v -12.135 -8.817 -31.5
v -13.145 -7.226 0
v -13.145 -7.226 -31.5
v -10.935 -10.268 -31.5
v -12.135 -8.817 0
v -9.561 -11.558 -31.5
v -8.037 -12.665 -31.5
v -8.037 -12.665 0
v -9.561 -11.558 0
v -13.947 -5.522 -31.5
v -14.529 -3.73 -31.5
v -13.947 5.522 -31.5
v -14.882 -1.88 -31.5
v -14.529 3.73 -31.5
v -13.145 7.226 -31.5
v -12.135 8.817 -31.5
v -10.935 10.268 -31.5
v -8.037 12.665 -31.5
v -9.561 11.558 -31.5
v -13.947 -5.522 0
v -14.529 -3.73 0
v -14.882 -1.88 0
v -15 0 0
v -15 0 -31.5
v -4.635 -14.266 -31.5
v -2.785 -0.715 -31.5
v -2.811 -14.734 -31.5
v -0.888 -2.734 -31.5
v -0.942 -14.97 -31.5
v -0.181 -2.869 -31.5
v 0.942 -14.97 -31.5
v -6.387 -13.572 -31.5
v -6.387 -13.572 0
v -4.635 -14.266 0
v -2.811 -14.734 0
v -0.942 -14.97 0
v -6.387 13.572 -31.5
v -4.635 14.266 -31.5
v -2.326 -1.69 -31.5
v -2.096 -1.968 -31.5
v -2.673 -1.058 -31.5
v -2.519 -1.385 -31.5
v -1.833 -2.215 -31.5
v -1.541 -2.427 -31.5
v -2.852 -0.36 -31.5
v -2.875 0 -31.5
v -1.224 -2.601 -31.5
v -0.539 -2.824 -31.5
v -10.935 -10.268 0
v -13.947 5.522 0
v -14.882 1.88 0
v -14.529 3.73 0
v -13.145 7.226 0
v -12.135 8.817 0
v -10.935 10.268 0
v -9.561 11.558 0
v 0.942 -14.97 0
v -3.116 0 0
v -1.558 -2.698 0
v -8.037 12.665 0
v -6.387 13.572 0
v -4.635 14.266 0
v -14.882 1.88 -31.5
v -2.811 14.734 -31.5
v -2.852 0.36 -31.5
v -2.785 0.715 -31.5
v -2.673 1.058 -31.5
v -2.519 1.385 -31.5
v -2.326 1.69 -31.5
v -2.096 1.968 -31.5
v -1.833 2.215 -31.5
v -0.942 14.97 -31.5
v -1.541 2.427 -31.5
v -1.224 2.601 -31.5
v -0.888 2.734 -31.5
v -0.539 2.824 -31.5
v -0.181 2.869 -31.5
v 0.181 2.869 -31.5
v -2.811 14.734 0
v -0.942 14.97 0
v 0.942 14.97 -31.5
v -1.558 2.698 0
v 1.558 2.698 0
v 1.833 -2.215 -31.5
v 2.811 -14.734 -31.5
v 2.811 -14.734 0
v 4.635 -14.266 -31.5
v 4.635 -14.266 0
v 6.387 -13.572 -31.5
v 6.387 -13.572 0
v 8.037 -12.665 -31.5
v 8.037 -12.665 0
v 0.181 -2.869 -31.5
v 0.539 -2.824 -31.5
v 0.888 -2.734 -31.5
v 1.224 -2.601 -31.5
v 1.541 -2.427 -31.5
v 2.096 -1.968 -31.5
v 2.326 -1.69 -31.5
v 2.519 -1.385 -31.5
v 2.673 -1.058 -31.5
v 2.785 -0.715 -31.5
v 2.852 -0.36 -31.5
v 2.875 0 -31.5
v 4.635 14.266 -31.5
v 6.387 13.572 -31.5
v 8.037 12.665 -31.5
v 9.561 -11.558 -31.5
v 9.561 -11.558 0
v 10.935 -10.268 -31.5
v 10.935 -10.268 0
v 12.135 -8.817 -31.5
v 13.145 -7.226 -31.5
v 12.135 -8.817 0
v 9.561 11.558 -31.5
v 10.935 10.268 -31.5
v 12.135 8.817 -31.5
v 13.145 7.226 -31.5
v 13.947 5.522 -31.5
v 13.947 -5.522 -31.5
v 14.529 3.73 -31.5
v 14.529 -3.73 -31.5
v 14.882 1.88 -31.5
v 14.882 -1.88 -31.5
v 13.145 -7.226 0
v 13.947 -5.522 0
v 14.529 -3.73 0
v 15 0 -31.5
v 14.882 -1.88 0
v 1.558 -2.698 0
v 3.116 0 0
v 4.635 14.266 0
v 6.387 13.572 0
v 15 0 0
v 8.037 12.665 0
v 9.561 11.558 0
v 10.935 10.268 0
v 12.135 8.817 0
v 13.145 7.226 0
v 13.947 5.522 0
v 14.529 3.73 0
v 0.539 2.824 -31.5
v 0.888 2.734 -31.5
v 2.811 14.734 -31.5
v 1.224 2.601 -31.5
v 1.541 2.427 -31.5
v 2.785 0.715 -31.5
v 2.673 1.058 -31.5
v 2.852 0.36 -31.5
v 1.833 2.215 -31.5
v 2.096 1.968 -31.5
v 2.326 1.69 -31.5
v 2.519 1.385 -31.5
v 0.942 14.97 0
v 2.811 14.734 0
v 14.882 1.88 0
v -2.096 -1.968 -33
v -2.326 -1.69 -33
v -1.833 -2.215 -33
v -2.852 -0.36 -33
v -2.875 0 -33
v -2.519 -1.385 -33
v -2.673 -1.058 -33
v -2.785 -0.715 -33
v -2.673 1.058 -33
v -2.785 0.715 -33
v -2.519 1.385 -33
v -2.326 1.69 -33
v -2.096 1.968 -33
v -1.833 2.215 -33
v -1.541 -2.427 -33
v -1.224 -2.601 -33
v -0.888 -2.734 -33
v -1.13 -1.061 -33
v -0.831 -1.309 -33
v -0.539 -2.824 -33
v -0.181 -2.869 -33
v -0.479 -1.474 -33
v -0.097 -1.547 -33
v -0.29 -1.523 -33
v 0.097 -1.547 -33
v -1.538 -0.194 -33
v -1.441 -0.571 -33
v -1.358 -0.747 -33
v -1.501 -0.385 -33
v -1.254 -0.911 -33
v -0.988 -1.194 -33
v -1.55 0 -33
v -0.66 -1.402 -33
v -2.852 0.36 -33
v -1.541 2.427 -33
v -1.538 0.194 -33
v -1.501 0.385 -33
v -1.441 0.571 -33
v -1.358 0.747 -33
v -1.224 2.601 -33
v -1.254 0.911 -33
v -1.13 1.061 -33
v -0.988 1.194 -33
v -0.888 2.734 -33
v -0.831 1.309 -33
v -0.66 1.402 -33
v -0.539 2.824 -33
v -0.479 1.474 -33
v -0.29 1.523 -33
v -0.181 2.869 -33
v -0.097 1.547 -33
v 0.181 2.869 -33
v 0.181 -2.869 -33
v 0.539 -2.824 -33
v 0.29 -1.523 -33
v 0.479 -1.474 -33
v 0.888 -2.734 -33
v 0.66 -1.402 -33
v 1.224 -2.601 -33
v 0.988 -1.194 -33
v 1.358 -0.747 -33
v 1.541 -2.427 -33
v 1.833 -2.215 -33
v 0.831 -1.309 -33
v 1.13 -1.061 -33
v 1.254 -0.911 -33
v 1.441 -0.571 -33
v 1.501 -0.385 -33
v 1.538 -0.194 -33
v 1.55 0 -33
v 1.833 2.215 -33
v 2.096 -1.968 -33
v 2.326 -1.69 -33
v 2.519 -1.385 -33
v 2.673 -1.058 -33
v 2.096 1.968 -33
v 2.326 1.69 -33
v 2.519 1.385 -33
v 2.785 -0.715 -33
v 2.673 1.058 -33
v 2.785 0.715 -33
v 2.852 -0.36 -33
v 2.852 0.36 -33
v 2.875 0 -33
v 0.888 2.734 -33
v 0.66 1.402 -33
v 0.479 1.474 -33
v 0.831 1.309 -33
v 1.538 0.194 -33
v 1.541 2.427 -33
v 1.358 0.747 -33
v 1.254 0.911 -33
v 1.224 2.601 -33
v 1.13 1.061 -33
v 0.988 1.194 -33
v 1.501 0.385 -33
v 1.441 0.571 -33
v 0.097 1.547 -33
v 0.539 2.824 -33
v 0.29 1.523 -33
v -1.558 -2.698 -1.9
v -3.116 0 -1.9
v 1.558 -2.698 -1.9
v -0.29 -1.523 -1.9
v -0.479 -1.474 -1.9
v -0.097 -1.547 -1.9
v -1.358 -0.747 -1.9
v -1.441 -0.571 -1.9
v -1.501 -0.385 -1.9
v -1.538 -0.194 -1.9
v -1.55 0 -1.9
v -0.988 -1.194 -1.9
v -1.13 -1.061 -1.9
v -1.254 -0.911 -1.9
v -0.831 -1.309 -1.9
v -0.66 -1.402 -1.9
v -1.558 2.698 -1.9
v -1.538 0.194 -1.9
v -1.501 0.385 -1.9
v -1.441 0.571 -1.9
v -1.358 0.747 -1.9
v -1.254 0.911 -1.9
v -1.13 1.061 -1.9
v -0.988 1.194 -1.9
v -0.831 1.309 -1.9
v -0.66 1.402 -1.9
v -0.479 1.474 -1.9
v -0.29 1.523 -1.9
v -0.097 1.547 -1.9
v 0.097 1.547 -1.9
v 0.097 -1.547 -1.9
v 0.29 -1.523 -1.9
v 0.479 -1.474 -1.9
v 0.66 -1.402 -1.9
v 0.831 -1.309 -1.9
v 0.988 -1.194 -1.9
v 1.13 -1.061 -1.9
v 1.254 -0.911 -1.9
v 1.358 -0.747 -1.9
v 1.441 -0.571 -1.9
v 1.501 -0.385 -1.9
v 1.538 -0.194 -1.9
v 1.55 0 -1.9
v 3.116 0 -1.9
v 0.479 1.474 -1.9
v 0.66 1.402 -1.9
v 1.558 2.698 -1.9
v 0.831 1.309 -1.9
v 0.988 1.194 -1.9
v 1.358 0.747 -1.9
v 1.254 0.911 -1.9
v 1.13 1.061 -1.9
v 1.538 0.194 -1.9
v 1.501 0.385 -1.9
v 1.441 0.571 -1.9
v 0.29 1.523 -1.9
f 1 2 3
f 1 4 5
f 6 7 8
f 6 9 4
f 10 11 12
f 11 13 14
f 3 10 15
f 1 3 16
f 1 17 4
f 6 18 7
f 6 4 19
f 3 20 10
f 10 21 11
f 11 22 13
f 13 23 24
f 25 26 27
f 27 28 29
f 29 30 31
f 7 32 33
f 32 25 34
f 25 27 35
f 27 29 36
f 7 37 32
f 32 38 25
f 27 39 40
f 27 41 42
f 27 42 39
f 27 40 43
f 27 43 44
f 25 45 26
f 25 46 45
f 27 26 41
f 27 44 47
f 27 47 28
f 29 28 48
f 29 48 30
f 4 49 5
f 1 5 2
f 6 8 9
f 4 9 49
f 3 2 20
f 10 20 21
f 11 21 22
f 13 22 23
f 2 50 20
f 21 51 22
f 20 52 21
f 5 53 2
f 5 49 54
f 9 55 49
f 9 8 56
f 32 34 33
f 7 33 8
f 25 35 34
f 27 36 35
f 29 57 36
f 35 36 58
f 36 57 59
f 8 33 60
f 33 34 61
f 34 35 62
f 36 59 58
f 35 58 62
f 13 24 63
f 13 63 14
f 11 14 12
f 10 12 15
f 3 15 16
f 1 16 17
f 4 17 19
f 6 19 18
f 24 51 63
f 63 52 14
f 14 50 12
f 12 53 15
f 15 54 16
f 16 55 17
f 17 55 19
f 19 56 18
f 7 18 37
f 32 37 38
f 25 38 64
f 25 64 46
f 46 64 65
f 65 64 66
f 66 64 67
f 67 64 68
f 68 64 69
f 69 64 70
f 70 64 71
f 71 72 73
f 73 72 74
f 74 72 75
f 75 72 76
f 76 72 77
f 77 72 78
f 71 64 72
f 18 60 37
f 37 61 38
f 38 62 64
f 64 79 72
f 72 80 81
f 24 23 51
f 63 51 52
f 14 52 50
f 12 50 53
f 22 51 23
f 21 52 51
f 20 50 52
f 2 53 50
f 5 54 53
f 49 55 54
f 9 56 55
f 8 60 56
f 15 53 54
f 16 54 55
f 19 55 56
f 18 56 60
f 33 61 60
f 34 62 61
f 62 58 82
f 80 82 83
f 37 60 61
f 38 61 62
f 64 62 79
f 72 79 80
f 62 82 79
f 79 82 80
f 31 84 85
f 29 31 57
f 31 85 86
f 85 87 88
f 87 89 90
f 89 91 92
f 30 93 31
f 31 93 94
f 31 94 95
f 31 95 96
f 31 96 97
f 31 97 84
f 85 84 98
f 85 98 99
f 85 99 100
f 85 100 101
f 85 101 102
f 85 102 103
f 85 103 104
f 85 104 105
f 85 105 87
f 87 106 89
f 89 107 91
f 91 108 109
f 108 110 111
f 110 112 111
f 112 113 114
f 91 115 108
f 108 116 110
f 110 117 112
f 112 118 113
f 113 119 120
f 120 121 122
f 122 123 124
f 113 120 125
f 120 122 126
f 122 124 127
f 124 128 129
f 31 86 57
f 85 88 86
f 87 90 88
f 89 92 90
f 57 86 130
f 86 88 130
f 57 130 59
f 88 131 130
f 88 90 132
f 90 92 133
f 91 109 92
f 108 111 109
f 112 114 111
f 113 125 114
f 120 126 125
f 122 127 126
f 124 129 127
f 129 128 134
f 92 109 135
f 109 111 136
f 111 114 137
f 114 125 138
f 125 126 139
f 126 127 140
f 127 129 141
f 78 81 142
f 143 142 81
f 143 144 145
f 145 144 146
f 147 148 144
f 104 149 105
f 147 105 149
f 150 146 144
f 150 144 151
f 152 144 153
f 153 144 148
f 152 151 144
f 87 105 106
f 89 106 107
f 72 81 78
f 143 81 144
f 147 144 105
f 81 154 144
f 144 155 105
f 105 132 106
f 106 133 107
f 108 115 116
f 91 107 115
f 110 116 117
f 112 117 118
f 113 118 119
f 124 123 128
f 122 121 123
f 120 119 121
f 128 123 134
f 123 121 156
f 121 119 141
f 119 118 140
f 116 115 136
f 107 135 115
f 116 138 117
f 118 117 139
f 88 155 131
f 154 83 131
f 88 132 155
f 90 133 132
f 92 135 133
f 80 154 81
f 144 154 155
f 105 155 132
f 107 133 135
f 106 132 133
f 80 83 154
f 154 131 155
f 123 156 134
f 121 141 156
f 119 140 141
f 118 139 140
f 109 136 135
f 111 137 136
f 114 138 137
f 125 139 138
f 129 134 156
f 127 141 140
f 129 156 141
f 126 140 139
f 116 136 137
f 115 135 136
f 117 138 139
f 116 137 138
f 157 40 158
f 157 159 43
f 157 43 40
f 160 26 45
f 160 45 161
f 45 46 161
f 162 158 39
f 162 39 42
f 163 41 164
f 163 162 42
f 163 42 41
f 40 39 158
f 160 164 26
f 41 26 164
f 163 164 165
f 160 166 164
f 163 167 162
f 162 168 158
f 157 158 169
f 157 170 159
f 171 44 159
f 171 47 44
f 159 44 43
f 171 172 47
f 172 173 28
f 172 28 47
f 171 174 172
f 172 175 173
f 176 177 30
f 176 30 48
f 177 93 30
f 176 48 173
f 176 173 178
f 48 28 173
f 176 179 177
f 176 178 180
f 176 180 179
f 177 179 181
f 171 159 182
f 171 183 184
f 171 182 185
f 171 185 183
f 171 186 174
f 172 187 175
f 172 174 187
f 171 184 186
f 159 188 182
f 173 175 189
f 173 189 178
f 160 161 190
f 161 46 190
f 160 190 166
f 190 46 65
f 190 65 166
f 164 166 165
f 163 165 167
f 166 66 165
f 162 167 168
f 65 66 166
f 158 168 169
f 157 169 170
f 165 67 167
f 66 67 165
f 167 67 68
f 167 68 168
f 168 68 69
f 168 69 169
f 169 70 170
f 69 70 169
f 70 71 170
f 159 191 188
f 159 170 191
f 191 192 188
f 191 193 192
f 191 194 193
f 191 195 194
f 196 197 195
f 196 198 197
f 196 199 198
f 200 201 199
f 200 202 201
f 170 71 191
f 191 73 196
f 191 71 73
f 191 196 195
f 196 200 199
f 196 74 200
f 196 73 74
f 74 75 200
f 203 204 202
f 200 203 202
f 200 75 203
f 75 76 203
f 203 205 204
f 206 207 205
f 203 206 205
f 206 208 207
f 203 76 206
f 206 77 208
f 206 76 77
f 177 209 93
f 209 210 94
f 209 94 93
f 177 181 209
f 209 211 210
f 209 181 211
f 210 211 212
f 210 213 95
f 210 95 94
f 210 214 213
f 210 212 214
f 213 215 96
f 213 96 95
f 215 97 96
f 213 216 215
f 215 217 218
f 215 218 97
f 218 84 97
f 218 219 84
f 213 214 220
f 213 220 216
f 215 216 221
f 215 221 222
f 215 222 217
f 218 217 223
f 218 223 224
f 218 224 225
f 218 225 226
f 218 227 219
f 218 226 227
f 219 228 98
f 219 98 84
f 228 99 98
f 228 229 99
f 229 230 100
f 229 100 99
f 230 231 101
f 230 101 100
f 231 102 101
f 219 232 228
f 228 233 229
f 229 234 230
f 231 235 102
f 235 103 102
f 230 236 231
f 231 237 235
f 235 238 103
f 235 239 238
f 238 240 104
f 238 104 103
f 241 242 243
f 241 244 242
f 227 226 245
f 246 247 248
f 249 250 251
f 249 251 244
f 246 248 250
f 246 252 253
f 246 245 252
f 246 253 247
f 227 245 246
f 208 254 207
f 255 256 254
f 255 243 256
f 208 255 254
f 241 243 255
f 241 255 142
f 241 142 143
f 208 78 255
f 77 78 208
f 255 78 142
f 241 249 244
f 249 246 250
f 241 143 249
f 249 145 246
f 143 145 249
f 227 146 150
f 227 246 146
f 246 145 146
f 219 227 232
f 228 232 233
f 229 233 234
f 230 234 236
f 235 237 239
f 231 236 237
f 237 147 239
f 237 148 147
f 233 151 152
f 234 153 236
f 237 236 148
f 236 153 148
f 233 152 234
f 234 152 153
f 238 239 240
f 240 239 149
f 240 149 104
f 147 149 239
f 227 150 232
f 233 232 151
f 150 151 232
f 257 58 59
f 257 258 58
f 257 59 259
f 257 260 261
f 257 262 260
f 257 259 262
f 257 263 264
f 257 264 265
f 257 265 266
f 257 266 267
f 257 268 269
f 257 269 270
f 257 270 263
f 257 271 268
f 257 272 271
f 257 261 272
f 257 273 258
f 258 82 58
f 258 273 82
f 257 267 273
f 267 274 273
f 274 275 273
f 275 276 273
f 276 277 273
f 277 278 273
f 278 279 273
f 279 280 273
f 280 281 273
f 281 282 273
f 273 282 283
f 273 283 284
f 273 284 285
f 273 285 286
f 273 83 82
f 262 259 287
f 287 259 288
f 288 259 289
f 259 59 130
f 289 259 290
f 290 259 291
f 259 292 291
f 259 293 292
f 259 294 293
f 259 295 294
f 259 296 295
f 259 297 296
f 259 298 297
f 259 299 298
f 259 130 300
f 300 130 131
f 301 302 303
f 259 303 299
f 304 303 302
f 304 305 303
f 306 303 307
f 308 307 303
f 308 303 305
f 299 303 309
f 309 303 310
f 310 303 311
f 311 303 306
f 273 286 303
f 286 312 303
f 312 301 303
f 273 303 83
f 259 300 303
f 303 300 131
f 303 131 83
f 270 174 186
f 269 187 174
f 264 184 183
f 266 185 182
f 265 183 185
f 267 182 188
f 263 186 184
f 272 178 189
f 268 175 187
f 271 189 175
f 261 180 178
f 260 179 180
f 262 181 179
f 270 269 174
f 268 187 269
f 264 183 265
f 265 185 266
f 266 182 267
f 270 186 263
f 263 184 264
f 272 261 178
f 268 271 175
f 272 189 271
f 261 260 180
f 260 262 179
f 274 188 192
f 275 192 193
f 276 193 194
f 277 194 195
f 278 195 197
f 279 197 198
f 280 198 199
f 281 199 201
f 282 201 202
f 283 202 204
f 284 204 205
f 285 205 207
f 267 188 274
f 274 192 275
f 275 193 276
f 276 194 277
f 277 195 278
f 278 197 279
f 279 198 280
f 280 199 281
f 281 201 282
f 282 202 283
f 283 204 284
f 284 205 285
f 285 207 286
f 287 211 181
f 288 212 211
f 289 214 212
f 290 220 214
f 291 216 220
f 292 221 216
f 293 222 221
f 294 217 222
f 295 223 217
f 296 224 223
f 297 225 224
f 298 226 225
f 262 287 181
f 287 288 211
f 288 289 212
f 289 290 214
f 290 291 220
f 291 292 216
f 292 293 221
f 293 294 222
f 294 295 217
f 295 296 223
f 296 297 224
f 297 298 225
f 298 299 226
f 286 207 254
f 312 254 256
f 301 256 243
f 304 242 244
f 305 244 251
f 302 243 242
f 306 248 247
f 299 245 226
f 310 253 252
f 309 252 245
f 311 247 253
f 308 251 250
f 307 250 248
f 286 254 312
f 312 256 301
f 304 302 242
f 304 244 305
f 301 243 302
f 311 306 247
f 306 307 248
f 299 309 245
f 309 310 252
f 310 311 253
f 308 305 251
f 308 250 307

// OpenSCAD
$fn = 50;

difference() {
	union() {
		translate(v = [0, 0, -31.5]) {
			cylinder(h = 31.5, r = 15.0);
		}
		#translate(v = [0, 0, -33.0]) {
			cylinder(h = 33, r = 2.875);
		}
	}
	union() {
		translate(v = [0, 0, 0]) {
			rotate(a = [0, 0, 0]) {
				difference() {
					union() {
						translate(v = [0, 0, -1.9]) {
							linear_extrude(height = 1.9) {
								polygon(points = [[3.1158, 0.0], [1.5579000000000005, 2.698361953111554], [-1.5578999999999994, 2.6983619531115544], [-3.1158, 3.815754496783323e-16], [-1.5579000000000014, -2.6983619531115535], [1.557899999999998, -2.6983619531115552]]);
							}
						}
					}
					union();
				}
			}
		}
		#translate(v = [0, 0, -100.0]) {
			cylinder(h = 200, r = 1.55);
		}
	}
}
